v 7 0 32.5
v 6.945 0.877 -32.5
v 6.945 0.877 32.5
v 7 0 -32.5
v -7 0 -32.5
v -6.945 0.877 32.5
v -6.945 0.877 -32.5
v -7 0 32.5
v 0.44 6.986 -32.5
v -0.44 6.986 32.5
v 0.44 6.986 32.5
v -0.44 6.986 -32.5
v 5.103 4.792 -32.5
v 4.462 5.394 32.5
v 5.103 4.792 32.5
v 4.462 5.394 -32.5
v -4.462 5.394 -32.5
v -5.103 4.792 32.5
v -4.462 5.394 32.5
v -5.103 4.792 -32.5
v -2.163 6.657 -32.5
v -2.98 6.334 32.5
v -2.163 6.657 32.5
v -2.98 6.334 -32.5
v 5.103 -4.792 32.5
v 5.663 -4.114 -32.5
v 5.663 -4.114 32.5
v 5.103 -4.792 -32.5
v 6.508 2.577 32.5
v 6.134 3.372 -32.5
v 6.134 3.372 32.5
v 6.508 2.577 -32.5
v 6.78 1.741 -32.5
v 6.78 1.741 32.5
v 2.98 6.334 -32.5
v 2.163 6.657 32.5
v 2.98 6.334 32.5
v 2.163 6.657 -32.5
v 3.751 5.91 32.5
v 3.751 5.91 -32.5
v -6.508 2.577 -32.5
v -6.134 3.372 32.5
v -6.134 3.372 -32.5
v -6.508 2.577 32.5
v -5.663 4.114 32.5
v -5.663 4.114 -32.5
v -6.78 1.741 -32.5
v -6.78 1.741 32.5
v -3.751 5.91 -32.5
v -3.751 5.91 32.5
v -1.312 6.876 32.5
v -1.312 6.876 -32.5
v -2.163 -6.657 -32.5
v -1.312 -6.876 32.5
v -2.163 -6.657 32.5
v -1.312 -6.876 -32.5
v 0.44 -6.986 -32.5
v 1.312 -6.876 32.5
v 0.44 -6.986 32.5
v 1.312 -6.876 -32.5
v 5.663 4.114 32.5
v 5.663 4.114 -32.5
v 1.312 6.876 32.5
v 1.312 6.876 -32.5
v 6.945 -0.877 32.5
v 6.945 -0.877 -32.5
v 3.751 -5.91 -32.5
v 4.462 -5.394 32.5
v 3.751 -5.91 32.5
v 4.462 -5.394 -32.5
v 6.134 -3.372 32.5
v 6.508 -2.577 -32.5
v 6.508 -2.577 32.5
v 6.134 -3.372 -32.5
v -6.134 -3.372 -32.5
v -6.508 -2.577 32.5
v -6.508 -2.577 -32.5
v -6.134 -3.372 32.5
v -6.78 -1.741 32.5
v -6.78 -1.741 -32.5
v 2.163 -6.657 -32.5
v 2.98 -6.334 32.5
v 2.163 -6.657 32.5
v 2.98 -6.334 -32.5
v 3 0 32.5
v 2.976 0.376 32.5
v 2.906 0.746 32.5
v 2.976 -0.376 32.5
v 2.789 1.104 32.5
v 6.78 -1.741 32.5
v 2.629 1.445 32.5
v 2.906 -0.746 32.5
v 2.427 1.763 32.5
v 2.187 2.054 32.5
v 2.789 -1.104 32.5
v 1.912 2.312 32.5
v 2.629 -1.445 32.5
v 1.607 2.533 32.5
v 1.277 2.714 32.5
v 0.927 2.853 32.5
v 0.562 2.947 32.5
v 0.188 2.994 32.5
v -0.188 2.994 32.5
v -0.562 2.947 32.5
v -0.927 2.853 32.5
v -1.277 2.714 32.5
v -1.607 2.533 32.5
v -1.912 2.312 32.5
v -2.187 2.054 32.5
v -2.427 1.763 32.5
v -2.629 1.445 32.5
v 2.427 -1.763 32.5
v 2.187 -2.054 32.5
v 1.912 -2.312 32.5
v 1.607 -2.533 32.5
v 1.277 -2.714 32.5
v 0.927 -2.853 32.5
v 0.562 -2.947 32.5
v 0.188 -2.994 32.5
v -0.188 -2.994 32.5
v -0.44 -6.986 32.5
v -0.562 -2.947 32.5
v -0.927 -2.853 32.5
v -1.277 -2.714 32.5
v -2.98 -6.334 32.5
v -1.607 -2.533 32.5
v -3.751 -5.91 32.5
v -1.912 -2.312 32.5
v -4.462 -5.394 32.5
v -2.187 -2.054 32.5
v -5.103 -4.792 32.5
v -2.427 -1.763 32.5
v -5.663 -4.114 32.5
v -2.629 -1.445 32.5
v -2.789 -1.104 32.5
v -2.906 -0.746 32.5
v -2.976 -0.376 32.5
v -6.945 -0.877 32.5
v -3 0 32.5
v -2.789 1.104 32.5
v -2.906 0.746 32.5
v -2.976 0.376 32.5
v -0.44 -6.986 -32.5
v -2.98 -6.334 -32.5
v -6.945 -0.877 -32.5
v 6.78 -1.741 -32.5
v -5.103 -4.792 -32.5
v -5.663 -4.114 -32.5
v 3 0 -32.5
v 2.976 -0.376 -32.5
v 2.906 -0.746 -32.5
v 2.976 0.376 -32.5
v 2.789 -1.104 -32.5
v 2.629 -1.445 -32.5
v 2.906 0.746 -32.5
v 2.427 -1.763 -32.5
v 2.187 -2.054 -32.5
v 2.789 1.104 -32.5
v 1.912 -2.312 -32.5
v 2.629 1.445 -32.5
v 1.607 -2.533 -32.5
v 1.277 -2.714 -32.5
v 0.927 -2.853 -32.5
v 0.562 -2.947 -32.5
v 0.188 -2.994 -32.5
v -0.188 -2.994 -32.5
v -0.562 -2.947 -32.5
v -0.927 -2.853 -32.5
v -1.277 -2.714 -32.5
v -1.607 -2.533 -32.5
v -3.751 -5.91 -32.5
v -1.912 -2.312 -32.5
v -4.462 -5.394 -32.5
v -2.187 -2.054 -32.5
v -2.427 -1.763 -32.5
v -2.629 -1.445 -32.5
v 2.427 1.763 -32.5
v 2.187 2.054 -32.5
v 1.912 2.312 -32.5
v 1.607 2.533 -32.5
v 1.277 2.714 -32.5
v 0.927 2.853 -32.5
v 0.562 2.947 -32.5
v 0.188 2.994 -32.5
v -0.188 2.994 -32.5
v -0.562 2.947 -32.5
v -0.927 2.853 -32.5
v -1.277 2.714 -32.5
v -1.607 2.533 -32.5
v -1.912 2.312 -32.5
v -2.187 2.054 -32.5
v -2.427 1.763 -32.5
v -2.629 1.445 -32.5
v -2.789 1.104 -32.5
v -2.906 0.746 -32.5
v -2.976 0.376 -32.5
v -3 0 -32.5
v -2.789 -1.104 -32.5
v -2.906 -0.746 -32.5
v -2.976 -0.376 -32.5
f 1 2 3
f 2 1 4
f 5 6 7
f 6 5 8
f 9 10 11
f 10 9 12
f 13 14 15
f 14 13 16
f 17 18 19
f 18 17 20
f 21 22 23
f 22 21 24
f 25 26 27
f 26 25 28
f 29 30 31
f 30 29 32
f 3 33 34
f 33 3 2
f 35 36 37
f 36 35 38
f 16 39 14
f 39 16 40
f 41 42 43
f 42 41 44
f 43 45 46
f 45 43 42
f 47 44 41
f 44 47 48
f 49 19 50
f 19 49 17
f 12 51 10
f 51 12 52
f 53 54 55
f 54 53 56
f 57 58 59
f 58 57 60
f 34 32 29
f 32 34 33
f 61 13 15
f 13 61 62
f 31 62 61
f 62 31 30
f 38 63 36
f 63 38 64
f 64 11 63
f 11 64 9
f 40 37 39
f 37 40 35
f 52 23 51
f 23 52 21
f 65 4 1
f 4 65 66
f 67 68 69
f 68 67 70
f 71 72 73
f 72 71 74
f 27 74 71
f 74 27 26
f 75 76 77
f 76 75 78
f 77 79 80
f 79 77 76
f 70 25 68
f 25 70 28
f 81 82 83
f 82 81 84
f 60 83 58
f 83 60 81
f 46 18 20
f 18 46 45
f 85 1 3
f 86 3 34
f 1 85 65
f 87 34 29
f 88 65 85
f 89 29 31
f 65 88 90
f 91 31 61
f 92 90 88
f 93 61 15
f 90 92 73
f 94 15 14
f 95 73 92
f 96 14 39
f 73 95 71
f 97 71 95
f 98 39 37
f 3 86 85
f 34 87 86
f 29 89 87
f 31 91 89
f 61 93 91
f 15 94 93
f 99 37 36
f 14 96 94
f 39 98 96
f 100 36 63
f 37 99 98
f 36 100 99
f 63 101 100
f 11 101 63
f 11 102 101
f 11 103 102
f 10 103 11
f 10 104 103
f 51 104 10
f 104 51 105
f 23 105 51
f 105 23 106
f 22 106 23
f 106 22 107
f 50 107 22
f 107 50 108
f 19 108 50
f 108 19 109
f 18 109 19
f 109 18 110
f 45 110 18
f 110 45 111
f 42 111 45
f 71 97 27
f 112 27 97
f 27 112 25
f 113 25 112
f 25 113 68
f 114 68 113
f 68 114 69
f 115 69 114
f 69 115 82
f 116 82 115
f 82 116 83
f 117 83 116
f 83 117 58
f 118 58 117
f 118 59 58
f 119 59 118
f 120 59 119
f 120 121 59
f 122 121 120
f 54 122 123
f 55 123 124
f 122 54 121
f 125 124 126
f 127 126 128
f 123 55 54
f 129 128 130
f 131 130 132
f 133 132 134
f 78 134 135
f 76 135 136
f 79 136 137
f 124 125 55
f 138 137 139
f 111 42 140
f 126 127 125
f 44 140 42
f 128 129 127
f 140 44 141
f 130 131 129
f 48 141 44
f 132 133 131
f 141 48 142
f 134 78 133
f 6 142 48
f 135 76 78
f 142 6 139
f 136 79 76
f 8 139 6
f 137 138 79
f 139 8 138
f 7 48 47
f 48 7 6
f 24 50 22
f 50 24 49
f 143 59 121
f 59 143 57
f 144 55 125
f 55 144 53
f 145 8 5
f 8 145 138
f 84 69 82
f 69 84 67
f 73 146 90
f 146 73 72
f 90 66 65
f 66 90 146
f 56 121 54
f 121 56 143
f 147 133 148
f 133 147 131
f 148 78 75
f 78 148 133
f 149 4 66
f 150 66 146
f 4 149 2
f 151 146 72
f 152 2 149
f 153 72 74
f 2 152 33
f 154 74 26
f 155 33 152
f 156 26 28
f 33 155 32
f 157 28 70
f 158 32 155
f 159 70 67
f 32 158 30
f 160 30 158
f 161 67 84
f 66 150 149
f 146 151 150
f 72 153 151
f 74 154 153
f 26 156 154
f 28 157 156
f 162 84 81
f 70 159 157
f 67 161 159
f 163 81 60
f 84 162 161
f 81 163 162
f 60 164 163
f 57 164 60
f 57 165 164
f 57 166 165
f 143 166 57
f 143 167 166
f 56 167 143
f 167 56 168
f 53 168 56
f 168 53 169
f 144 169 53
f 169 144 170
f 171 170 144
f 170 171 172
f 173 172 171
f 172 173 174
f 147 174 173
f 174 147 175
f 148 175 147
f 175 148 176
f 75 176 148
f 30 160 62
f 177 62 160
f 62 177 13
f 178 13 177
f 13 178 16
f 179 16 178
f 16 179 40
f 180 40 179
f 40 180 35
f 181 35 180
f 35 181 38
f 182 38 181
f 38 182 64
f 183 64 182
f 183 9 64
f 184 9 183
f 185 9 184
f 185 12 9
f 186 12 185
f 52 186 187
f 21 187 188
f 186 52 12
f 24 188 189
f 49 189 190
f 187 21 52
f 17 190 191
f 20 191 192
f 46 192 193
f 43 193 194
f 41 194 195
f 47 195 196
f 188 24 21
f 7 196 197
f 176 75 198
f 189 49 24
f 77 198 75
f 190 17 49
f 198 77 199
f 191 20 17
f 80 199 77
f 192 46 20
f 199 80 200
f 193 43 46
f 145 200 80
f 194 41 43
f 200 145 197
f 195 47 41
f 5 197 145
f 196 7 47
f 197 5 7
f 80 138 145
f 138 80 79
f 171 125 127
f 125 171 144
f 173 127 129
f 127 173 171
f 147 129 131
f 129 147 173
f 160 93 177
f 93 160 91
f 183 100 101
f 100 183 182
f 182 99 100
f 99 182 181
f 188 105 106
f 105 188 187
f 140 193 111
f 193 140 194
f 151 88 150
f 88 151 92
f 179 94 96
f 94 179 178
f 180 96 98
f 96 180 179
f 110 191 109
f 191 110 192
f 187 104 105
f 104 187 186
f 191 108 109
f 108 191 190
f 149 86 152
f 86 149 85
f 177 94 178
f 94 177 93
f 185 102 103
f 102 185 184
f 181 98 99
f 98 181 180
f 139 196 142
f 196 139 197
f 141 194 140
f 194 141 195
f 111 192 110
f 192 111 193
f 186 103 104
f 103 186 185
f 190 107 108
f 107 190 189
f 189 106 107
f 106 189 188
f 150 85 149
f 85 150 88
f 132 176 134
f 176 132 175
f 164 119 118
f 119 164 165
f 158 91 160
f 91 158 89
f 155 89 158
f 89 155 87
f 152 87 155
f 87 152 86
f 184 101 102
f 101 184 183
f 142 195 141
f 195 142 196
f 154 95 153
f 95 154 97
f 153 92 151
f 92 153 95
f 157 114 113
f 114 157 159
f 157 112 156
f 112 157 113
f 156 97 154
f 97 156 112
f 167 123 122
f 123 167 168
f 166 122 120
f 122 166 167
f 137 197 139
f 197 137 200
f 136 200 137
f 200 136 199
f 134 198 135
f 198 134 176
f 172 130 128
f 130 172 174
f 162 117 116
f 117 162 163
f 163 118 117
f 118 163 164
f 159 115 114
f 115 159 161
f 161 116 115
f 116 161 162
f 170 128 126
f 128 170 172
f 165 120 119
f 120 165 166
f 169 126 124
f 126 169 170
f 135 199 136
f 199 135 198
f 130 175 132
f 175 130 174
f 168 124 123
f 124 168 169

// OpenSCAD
$fn = 50;


difference() {
	union() {
		translate(v = [0, 0, -32.5000000000]) {
			cylinder(h = 65, r = 7.0000000000);
		}
	}
	union() {
		translate(v = [0, 0, -100.0000000000]) {
			cylinder(h = 200, r = 3.0000000000);
		}
	}
}
